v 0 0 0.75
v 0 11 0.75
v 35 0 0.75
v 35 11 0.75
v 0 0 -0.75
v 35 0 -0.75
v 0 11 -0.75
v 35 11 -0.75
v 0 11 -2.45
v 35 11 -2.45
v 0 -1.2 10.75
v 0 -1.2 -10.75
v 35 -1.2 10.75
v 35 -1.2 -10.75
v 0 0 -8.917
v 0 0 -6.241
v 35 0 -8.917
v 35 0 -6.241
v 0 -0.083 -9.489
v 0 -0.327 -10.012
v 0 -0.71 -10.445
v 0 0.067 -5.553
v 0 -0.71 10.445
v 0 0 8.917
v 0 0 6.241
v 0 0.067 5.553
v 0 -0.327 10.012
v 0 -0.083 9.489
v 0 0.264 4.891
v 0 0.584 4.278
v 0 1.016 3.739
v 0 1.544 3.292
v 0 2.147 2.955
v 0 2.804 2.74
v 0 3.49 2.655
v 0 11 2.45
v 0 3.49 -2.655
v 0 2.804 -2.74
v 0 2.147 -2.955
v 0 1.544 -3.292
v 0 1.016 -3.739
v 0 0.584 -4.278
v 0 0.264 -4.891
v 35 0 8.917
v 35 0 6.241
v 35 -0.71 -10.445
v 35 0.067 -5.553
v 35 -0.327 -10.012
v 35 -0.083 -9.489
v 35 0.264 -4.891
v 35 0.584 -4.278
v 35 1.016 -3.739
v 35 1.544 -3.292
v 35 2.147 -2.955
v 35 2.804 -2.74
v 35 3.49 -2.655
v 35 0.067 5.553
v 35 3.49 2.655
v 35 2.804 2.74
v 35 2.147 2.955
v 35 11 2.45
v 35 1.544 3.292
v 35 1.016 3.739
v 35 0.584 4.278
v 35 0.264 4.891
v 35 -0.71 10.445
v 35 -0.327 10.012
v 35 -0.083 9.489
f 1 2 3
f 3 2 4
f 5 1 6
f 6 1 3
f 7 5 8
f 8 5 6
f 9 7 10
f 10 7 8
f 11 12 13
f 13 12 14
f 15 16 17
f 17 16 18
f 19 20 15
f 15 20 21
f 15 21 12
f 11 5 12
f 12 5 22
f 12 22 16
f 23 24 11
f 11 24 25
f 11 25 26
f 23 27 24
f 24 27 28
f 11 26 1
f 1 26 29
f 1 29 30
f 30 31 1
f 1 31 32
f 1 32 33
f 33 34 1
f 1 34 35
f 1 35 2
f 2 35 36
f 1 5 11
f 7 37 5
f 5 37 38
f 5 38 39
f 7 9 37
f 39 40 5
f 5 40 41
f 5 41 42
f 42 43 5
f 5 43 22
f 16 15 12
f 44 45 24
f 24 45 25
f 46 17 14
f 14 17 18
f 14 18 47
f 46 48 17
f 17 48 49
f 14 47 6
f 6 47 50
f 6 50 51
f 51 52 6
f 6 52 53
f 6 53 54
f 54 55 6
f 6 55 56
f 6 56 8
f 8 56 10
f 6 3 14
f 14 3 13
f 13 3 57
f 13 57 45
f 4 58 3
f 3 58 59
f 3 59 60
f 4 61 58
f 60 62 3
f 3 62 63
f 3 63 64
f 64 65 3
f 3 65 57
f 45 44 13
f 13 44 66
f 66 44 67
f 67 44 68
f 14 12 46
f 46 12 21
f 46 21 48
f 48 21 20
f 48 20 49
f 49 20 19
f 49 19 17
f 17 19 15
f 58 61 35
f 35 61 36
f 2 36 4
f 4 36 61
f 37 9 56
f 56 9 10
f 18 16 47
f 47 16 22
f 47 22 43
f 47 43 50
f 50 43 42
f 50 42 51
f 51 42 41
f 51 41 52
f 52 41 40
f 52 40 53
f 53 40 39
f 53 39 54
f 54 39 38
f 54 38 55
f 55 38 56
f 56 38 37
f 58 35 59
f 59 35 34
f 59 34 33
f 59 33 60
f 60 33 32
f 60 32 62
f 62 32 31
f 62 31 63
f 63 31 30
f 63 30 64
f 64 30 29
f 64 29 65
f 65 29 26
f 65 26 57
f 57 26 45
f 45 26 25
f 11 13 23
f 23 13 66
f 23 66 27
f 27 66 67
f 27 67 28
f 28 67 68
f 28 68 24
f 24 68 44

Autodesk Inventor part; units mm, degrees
ref_plane "YZ Plane" through (0, 0, 0) normal (1, 0, 0) x (0, 1, 0)
ref_plane "XZ Plane" through (0, 0, 0) normal (0, 1, 0) x (-1, 0, 0)
ref_plane "XY Plane" through (0, 0, 0) normal (0, 0, 1) x (1, 0, 0)
sketch "Sketch1" plane through (0, 0, 0) normal (1, 0, 0) x (0, 1, 0)
  line L0 (0, 0) -> (0, -0.75) construction
  line L1 (0, 0) -> (0, 0.75) construction
  line L2 (0, 0.75) -> (11, 0.75)
  line L3 (11, 0.75) -> (11, 2.45)
  line L4 (0, -0.75) -> (11, -0.75)
  line L5 (11, -0.75) -> (11, -2.45)
  line L6 (0, 0.75) -> (0, 2.75)
  line L7 (0, 2.75) -> (11, 2.45)
  line L8 (0, -0.75) -> (0, -2.75)
  line L9 (0, -2.75) -> (11, -2.45)
  line L10 (0, -0.75) -> (0, 0.75)
  line L11 (0, 2.75) -> (0, 10.75)
  line L12 (0, -2.75) -> (0, -10.75)
  line L13 (0, -2.75) -> (8, -2.75) construction
  line L14 (0, -10.75) -> (-1.2, -10.75)
  line L15 (-1.2, -10.75) -> (-1.2, 10.75)
  line L16 (-1.2, 10.75) -> (0, 10.75)
  dimension "d0" = 0.75
  dimension "d1" = 0.75
  dimension "d2" = 11
  dimension "d3" = 1.7
  dimension "d4" = 11
  dimension "d5" = 1.7
  dimension "d6" = 2
  dimension "d7" = 2
  dimension "d8" = 8
  dimension "d9" = 8
  dimension "d10" = 90
  dimension "d11" = 1.2
extrude "Extrusion1" add sketch "Sketch1" along normal blind 35
fillet "Fillet1" radius 3.5875 2 edges at (17.5, 0, 2.75) (17.5, 0, -2.75)
fillet "Fillet2" radius 2 2 edges at (17.5, 0, 10.75) (17.5, 0, -10.75)
properties part number "cleat bracket v1"
